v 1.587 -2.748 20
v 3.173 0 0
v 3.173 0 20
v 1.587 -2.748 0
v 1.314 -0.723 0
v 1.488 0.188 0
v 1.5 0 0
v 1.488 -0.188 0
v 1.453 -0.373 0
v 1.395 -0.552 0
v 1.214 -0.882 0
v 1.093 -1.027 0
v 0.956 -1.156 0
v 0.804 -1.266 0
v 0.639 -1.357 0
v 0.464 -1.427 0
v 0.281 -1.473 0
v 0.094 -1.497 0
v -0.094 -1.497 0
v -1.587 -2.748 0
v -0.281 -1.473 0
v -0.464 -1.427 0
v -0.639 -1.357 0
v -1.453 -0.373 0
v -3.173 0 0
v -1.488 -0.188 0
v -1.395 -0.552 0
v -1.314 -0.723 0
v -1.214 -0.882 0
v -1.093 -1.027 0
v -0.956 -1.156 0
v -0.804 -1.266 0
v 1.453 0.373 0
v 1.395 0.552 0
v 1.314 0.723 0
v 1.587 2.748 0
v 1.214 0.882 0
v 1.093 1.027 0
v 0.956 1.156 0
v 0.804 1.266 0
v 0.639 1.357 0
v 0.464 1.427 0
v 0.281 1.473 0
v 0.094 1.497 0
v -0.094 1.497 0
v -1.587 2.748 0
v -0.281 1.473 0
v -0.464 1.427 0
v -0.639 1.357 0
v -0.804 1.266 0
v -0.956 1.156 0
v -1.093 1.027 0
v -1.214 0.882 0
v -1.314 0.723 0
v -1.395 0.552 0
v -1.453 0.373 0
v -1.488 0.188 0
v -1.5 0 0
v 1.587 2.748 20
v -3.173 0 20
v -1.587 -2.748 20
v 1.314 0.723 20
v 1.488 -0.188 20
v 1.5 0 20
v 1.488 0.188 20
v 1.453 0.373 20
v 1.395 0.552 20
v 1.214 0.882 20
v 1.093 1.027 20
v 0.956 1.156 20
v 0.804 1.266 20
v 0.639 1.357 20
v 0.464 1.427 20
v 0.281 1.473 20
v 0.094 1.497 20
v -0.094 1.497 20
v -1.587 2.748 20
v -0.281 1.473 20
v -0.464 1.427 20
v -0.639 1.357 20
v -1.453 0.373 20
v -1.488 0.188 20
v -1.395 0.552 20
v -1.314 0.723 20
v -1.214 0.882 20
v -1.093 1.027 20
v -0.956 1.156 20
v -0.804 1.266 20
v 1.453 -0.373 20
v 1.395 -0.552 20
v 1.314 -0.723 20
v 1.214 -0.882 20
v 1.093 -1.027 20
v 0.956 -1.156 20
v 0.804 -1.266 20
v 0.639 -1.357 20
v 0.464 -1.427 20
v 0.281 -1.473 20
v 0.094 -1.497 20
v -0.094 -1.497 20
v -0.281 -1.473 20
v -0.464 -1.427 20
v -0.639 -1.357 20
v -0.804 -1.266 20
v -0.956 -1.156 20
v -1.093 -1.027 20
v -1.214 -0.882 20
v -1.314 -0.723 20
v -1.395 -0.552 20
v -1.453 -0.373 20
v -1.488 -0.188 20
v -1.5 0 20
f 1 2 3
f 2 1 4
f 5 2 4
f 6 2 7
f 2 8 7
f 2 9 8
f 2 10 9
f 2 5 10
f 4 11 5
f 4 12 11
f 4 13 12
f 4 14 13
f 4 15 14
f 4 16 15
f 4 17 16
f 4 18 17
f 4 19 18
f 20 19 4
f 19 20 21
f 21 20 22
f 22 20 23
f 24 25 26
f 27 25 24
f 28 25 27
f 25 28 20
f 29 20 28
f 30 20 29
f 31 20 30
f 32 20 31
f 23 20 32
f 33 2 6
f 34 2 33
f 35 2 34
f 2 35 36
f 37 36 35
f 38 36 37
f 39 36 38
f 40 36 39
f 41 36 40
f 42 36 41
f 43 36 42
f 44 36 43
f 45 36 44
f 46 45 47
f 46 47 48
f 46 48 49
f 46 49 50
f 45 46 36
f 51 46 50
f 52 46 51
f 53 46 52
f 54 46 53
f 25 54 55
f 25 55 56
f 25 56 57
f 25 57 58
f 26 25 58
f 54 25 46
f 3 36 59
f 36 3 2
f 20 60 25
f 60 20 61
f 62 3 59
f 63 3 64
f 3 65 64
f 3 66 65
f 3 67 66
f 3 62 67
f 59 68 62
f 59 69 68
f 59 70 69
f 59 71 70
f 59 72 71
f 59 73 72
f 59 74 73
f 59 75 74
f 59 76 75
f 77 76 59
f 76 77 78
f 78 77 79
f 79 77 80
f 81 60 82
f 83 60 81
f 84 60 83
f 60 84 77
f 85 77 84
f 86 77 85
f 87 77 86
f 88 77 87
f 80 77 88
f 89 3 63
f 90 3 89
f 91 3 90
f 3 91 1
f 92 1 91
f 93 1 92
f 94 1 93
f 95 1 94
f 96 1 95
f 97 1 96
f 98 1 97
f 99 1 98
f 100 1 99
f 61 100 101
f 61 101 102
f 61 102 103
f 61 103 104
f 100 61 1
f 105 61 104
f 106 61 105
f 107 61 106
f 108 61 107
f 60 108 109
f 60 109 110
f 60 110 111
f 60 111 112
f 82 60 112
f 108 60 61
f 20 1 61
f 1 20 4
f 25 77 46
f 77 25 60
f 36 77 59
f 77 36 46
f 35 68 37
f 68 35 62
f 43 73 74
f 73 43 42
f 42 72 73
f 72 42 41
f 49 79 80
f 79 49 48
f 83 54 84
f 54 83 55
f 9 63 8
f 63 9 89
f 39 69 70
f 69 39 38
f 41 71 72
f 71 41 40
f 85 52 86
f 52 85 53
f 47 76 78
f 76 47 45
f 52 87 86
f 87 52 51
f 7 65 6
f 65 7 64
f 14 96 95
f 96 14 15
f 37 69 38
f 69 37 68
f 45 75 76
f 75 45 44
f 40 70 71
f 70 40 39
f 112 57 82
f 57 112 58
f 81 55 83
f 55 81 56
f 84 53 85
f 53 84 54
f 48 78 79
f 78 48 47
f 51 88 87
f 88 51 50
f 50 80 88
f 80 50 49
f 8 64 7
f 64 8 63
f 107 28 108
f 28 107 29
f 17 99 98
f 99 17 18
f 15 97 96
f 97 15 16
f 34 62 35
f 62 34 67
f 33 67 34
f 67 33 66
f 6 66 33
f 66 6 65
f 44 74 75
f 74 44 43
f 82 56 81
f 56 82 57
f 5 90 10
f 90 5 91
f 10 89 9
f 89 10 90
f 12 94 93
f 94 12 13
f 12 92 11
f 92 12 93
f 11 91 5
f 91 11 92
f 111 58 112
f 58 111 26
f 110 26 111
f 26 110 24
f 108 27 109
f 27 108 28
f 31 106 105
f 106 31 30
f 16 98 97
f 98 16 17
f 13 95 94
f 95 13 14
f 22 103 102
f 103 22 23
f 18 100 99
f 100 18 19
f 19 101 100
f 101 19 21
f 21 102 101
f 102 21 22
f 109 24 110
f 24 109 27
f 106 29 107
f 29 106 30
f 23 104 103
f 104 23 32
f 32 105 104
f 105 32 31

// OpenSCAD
$fn = 50;


difference() {
	union() {
		translate(v = [0, 0, 0]) {
			rotate(a = [0, 0, 0]) {
				translate(v = [0, 0, 0]) {
					rotate(a = [0, 0, 0]) {
						linear_extrude(height = 20) {
							polygon(points = [[3.1735000000, 0.0000000000], [1.5867500000, 2.7483316189], [-1.5867500000, 2.7483316189], [-3.1735000000, 0.0000000000], [-1.5867500000, -2.7483316189], [1.5867500000, -2.7483316189]]);
						}
					}
				}
			}
		}
	}
	union() {
		translate(v = [0, 0, 0]) {
			rotate(a = [0, 0, 0]) {
				cylinder(h = 20, r = 1.5000000000);
			}
		}
	}
}
